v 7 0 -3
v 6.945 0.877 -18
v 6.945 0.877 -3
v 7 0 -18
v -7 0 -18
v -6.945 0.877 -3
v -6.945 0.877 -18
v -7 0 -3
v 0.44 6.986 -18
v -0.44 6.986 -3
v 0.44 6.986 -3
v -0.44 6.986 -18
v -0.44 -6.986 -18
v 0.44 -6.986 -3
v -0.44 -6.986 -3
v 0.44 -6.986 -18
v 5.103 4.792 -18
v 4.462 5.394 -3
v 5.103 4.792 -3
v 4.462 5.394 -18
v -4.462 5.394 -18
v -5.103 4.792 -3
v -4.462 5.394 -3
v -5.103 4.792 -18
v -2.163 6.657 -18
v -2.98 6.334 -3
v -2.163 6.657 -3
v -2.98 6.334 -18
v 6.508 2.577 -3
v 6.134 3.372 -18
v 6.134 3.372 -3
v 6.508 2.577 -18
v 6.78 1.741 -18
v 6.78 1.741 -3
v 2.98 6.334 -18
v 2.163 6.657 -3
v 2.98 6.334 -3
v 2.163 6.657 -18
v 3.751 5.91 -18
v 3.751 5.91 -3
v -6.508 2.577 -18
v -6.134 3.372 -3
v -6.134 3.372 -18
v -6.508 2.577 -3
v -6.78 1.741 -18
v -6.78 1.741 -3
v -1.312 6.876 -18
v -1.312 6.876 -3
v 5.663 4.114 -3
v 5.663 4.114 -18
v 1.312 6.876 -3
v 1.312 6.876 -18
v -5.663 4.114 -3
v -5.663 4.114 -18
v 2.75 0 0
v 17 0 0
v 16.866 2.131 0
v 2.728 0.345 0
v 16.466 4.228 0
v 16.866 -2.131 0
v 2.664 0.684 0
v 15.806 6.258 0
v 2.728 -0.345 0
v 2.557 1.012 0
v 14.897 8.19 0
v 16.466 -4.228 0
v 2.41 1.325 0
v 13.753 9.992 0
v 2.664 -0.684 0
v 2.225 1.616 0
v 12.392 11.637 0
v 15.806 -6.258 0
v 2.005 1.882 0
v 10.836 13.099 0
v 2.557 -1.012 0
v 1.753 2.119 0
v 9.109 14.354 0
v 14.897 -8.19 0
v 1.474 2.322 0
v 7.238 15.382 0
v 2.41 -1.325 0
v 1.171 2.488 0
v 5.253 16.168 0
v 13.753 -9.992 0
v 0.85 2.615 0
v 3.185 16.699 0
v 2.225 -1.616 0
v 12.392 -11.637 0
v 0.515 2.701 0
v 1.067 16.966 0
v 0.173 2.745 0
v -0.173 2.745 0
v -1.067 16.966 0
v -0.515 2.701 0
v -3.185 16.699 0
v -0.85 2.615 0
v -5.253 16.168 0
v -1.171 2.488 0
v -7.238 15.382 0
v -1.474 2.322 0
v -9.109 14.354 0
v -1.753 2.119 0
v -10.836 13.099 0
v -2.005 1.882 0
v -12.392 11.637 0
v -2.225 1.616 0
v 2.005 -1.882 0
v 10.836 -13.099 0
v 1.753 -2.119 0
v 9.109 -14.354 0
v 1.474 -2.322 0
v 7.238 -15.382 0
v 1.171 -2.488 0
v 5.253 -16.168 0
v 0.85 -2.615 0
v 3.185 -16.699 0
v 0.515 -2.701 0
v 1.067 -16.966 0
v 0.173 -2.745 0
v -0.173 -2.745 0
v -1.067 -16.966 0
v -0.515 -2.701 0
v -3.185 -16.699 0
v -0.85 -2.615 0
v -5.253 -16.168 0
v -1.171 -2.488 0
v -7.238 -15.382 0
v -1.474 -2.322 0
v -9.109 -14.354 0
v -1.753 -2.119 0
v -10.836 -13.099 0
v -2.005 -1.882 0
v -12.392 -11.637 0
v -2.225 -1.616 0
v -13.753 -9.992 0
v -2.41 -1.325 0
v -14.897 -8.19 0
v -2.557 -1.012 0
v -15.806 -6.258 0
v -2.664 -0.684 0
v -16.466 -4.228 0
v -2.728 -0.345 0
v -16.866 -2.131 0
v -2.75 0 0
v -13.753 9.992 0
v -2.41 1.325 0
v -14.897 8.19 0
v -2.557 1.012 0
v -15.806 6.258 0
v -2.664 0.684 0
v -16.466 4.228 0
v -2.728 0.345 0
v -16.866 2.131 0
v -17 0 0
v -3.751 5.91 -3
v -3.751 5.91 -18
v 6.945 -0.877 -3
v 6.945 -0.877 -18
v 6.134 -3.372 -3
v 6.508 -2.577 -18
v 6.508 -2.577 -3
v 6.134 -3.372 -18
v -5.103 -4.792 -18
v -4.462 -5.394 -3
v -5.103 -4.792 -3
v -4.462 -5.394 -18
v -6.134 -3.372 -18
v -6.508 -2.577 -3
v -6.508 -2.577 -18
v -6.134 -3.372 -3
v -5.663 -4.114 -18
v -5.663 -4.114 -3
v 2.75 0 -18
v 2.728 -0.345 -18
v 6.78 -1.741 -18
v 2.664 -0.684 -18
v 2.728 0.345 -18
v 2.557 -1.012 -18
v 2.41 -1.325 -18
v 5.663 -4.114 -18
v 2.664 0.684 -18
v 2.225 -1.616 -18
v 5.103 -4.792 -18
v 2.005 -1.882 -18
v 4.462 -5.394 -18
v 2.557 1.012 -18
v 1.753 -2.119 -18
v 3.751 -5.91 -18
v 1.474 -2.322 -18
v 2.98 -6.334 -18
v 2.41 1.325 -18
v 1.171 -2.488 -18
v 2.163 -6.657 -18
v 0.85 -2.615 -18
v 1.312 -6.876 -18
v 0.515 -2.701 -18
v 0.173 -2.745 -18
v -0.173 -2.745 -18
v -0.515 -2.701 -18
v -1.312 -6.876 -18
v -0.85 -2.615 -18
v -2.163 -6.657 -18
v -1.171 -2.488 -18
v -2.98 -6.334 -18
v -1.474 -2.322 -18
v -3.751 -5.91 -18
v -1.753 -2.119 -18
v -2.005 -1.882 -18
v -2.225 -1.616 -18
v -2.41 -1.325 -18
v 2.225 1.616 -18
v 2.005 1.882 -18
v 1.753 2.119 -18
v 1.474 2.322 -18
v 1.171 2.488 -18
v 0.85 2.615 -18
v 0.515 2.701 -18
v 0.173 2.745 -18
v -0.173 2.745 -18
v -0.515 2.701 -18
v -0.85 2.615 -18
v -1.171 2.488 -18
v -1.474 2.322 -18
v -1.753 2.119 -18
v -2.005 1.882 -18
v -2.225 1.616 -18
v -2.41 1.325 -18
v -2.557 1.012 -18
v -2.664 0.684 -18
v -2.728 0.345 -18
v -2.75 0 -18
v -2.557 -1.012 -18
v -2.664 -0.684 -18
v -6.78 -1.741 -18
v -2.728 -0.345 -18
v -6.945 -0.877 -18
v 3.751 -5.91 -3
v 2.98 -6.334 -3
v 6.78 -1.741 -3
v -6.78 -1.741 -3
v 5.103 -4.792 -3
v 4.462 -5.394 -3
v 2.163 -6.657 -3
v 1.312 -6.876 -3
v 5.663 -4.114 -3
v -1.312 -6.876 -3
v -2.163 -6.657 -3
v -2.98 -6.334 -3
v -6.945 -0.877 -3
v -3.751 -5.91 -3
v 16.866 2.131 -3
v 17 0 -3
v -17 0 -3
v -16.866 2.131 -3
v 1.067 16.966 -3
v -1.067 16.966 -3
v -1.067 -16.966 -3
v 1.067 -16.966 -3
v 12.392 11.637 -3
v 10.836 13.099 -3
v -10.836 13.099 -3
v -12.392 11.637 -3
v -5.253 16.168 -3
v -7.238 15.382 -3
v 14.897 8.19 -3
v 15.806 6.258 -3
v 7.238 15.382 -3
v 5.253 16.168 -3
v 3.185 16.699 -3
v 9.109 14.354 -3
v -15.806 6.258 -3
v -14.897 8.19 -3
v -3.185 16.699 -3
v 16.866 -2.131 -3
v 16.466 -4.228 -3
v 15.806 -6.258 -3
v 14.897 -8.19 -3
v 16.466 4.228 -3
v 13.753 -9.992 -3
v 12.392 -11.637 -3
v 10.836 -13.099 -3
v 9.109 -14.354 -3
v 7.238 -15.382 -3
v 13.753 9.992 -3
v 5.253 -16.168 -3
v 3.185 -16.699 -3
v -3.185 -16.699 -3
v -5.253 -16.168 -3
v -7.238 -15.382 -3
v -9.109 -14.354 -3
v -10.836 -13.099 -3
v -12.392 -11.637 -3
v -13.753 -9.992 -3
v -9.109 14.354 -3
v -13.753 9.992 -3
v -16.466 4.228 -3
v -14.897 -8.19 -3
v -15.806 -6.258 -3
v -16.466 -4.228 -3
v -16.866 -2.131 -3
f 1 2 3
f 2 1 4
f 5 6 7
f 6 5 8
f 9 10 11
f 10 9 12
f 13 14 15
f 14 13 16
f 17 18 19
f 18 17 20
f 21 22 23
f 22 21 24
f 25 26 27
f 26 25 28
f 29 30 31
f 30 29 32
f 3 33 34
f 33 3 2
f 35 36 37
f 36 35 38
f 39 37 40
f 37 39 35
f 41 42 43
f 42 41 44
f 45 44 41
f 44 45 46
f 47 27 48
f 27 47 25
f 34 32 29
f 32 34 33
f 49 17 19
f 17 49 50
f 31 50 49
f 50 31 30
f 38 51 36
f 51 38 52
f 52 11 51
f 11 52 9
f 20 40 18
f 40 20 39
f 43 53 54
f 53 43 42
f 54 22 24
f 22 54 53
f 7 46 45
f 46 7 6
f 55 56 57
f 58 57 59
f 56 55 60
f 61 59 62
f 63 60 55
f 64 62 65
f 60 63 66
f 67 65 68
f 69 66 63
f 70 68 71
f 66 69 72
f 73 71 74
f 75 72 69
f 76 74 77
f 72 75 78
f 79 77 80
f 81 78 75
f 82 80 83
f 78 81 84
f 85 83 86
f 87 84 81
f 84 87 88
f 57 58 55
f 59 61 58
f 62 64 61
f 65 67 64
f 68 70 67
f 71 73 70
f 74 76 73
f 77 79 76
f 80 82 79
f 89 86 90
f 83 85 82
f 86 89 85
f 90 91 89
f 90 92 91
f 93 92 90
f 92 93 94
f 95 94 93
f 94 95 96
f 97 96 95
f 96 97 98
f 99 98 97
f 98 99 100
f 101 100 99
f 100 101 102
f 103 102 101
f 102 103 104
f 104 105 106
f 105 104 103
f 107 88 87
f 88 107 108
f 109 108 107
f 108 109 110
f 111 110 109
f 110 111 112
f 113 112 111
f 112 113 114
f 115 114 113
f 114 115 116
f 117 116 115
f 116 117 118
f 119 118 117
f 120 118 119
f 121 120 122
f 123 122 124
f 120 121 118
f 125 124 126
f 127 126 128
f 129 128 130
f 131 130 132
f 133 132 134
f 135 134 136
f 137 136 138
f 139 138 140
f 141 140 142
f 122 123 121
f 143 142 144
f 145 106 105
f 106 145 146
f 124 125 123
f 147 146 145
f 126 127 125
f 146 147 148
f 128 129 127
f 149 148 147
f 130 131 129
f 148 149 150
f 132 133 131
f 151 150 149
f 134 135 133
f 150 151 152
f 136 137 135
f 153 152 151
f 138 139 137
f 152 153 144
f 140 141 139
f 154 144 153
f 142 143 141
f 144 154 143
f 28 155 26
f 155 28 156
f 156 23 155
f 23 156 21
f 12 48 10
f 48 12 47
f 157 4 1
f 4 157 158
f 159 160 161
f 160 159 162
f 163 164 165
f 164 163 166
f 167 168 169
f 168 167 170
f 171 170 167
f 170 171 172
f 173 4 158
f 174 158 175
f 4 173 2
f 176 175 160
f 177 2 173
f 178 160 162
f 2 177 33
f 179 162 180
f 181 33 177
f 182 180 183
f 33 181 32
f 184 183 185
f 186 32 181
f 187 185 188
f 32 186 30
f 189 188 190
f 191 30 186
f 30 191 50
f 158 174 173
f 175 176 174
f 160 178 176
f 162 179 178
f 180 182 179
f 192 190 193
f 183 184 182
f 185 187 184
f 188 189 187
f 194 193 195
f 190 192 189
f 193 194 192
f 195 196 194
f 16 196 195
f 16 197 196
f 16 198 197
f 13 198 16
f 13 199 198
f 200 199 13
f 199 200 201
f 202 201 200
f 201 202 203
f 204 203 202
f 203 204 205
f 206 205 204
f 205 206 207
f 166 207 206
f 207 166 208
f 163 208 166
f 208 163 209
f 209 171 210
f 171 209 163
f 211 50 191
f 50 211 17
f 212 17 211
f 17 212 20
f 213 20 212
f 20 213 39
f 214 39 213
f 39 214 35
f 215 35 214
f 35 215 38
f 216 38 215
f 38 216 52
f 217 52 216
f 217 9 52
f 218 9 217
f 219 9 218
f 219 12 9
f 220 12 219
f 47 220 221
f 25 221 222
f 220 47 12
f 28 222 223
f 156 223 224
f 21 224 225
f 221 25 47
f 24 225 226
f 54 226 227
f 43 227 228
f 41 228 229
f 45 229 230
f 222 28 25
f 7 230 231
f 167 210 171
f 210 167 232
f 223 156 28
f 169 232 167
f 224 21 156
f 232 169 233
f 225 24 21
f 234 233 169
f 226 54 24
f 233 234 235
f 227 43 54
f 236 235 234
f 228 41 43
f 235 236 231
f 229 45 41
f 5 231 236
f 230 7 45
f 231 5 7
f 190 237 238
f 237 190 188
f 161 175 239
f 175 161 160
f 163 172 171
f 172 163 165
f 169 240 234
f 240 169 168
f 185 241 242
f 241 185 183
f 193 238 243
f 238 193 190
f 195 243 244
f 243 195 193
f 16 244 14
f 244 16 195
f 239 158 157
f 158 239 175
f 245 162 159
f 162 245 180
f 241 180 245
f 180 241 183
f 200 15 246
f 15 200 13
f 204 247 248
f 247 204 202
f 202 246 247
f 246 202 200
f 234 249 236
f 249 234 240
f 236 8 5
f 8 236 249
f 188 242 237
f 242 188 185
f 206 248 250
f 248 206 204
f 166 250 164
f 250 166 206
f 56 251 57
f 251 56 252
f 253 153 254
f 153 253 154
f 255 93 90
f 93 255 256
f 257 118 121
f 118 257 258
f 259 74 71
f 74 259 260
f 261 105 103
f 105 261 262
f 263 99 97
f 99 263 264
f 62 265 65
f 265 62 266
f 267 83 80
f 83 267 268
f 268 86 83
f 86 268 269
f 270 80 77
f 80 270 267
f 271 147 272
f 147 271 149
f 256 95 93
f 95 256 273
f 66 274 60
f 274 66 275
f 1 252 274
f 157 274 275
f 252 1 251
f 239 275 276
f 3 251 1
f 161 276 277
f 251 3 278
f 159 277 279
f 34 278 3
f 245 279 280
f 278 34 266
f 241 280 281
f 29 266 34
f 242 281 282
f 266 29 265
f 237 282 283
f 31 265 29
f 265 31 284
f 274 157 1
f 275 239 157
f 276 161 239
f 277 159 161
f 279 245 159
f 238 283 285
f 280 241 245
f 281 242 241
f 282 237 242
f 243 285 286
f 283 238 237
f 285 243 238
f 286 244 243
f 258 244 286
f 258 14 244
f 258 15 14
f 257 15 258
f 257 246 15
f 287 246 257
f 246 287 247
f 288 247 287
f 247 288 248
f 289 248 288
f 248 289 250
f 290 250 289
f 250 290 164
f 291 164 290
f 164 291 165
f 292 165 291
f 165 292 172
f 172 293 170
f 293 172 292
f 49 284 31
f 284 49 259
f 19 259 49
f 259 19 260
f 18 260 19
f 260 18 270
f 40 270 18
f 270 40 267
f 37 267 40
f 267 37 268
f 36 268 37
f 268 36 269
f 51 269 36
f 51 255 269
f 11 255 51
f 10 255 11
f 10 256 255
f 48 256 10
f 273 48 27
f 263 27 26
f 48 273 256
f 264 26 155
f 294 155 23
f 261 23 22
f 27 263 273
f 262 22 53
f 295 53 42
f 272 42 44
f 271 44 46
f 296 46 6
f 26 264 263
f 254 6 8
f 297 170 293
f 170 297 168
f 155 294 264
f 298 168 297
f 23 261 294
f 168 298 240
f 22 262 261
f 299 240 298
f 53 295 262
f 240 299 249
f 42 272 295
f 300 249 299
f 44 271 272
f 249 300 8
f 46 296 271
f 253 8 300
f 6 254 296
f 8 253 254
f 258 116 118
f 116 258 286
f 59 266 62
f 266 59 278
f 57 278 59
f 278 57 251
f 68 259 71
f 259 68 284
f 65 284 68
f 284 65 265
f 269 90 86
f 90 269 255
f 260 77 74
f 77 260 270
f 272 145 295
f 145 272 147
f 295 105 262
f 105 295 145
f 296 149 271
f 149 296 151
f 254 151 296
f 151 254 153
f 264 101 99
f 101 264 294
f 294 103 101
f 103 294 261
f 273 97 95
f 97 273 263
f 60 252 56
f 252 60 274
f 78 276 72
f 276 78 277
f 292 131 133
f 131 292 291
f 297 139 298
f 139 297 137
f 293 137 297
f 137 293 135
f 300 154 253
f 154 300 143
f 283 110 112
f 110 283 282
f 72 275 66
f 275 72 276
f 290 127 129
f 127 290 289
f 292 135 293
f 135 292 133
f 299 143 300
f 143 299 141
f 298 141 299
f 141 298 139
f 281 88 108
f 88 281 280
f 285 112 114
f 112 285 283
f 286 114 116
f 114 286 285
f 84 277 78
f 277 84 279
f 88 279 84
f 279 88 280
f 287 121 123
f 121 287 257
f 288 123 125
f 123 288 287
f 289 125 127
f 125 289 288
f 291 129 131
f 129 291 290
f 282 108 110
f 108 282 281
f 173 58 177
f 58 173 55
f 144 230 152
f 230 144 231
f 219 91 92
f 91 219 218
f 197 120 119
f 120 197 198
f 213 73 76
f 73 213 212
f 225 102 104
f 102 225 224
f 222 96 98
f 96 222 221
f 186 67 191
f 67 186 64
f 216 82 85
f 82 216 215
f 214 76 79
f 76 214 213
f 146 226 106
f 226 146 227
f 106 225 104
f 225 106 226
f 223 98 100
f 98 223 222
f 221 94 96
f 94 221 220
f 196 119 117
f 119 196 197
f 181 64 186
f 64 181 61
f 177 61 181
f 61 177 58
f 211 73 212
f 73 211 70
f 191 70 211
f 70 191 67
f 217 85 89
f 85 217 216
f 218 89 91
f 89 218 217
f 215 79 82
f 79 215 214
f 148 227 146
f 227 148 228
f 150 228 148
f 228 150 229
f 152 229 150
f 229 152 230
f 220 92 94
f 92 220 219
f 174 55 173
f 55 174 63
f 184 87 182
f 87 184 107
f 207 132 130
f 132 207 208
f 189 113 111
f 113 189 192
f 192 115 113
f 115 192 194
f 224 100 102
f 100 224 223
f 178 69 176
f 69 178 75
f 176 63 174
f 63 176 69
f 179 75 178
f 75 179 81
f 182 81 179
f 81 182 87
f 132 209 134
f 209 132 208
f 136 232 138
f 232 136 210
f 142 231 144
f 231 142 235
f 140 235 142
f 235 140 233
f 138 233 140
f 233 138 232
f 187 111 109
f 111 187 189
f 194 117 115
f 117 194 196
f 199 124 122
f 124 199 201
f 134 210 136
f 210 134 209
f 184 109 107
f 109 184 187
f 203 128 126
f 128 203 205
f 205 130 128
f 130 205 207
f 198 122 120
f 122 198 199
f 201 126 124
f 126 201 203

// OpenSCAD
$fn = 50;


difference() {
	union() {
		translate(v = [0, 0, -18.0000000000]) {
			cylinder(h = 18, r = 7.0000000000);
		}
		translate(v = [0, 0, -3.0000000000]) {
			cylinder(h = 3, r = 17.0000000000);
		}
	}
	union() {
		#translate(v = [0, 0, -18]) {
			cylinder(h = 18, r = 2.7500000000);
		}
	}
}
